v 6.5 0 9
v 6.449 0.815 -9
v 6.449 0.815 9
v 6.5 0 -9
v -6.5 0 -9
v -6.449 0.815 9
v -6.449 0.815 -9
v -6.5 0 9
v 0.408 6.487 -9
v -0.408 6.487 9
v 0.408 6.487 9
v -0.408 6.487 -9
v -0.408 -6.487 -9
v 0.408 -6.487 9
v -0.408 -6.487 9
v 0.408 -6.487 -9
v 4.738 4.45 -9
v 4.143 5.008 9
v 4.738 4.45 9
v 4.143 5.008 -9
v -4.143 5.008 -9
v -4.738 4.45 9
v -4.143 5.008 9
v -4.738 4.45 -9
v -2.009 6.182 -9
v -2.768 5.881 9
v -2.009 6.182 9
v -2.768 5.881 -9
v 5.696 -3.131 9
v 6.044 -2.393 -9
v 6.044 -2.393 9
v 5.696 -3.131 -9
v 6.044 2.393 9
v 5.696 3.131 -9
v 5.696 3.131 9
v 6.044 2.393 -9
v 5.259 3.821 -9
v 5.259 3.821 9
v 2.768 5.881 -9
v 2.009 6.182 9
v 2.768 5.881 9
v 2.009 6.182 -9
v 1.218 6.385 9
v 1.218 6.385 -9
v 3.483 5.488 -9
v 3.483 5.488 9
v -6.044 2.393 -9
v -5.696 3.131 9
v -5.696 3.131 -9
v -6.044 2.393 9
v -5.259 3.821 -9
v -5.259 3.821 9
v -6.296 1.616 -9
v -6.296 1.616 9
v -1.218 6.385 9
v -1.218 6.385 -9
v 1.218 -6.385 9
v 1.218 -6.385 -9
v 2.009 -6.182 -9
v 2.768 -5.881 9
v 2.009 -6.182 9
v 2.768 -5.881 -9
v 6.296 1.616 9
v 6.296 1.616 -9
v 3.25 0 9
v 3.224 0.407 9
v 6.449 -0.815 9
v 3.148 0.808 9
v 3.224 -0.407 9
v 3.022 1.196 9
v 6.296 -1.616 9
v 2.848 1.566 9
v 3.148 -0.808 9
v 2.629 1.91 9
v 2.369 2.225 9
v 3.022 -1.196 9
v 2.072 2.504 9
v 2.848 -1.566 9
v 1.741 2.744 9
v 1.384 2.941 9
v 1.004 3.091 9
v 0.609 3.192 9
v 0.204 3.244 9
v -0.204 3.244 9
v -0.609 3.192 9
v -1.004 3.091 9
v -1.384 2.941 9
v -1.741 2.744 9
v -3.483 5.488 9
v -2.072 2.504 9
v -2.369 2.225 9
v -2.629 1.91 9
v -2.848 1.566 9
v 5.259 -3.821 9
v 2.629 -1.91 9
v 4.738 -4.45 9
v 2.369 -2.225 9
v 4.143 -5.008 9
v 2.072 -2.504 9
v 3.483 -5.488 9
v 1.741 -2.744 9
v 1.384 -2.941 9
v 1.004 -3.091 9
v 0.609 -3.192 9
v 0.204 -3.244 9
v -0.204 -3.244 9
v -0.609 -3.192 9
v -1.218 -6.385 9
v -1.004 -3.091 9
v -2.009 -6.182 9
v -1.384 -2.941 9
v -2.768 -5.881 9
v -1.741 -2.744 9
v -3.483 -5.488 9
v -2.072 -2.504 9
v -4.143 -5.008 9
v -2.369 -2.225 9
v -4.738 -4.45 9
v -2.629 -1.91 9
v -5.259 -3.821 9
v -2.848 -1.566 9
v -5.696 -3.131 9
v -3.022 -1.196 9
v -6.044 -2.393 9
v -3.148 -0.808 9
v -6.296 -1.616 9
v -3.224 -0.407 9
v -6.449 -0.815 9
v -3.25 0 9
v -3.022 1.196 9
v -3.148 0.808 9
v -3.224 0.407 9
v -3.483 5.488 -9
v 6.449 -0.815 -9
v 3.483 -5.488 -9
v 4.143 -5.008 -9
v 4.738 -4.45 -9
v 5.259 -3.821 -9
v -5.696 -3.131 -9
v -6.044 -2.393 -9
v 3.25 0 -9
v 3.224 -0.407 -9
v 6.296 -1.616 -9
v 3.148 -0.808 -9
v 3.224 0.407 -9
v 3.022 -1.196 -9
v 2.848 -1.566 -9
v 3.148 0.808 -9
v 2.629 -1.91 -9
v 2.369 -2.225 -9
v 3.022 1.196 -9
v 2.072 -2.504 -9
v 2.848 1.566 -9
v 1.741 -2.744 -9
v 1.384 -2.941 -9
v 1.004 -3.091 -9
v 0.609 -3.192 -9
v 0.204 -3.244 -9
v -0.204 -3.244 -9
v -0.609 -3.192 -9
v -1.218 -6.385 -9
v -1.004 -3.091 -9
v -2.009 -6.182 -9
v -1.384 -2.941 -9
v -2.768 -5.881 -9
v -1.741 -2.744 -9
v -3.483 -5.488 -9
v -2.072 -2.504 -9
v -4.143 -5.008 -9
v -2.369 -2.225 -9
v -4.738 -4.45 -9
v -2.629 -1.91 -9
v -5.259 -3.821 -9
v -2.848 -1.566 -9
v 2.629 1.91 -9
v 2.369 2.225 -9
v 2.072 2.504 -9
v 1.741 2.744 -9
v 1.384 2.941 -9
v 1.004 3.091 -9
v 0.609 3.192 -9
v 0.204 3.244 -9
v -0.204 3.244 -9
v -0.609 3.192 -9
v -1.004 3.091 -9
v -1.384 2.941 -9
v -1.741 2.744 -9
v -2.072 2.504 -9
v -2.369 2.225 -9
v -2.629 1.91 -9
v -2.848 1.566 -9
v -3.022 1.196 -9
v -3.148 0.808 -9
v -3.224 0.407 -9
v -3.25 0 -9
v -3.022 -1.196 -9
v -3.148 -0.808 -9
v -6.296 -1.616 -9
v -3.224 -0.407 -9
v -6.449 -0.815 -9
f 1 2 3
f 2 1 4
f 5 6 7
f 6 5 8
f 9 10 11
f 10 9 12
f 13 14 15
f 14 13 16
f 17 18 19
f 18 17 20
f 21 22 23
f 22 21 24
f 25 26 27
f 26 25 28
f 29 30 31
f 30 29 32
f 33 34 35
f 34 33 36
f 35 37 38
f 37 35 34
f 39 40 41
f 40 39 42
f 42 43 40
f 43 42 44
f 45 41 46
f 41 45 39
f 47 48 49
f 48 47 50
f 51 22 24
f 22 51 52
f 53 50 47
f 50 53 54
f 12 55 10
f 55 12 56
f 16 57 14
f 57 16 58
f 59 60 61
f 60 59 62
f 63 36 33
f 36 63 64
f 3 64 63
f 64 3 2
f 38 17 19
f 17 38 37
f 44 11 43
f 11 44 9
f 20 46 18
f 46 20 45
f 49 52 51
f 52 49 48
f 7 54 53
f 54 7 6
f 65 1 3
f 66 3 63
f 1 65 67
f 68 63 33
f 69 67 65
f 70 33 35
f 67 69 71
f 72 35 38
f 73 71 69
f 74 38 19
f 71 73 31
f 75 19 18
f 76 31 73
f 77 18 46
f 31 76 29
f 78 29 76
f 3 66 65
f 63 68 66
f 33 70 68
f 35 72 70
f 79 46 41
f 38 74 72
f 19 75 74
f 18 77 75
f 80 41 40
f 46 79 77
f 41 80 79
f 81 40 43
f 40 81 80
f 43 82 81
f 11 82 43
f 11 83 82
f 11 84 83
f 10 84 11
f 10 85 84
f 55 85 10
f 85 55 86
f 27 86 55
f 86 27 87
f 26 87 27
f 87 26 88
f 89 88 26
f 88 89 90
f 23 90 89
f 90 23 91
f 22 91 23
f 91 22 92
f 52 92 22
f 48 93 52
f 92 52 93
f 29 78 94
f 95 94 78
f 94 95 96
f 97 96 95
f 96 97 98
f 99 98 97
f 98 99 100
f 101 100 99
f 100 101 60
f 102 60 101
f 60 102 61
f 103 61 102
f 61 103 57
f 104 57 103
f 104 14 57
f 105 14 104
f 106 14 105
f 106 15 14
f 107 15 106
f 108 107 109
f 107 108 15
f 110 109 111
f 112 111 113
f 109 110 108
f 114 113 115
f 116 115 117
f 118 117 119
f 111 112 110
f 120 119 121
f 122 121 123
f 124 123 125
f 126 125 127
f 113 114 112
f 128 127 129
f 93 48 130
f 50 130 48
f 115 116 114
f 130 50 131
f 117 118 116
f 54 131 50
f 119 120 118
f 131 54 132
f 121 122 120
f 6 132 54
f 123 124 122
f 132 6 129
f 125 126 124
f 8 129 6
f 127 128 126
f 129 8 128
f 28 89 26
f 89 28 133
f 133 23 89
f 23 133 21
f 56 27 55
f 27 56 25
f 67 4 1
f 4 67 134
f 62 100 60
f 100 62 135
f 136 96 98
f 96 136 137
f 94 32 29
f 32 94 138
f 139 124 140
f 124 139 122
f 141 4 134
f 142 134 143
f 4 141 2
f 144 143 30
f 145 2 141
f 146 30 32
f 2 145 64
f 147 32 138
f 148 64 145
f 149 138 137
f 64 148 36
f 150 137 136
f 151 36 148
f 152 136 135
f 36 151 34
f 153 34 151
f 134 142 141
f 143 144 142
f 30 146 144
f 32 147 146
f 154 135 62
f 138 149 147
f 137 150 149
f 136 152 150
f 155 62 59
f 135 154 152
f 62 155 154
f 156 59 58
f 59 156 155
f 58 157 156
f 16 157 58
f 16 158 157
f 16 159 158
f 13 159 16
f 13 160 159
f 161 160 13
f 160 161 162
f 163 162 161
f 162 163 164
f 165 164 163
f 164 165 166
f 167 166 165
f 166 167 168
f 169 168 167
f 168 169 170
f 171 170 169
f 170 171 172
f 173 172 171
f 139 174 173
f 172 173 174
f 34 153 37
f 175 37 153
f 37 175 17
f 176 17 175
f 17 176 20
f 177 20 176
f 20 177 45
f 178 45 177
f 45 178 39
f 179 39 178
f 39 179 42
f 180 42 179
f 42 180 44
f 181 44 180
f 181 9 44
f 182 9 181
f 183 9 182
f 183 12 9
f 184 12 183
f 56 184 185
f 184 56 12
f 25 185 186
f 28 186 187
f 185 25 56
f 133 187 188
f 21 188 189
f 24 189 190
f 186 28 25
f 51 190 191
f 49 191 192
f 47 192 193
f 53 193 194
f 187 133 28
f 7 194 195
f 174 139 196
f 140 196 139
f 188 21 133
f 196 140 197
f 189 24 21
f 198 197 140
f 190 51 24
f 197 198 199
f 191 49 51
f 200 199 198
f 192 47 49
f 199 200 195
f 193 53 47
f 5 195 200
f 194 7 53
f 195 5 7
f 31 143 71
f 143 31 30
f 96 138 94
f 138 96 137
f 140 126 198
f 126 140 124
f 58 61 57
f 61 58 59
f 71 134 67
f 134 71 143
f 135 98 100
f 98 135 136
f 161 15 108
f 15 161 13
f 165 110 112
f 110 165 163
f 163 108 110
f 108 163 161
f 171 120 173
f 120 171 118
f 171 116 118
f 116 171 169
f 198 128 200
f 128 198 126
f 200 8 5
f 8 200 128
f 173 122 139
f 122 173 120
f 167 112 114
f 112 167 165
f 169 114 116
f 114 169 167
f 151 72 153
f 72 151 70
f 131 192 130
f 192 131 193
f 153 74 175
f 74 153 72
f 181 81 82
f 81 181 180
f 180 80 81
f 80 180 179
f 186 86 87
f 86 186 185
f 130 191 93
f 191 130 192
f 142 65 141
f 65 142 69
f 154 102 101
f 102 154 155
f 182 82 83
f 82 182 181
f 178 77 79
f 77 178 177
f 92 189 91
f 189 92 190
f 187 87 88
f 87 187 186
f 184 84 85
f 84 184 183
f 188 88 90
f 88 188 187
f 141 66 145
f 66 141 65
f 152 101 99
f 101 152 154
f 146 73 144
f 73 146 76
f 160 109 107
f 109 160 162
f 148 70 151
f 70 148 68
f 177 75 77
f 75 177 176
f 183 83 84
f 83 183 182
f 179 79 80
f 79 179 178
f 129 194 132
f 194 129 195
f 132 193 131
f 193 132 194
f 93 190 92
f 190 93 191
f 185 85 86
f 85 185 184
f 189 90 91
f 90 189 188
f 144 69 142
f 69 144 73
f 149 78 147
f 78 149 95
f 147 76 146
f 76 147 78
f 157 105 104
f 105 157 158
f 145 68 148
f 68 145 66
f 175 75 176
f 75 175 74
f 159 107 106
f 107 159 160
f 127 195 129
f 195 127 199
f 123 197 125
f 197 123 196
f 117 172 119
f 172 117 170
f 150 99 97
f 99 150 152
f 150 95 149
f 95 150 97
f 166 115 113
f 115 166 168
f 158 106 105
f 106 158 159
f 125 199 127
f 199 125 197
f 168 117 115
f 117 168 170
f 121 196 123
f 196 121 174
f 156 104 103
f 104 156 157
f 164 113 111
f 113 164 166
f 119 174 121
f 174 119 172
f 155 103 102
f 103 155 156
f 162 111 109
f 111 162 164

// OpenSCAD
$fn = 50;


difference() {
	union() {
		translate(v = [0, 0, -9.0000000000]) {
			cylinder(h = 18, r = 6.5000000000);
		}
	}
	union() {
		translate(v = [0, 0, -100.0000000000]) {
			cylinder(h = 200, r = 3.2500000000);
		}
	}
}
